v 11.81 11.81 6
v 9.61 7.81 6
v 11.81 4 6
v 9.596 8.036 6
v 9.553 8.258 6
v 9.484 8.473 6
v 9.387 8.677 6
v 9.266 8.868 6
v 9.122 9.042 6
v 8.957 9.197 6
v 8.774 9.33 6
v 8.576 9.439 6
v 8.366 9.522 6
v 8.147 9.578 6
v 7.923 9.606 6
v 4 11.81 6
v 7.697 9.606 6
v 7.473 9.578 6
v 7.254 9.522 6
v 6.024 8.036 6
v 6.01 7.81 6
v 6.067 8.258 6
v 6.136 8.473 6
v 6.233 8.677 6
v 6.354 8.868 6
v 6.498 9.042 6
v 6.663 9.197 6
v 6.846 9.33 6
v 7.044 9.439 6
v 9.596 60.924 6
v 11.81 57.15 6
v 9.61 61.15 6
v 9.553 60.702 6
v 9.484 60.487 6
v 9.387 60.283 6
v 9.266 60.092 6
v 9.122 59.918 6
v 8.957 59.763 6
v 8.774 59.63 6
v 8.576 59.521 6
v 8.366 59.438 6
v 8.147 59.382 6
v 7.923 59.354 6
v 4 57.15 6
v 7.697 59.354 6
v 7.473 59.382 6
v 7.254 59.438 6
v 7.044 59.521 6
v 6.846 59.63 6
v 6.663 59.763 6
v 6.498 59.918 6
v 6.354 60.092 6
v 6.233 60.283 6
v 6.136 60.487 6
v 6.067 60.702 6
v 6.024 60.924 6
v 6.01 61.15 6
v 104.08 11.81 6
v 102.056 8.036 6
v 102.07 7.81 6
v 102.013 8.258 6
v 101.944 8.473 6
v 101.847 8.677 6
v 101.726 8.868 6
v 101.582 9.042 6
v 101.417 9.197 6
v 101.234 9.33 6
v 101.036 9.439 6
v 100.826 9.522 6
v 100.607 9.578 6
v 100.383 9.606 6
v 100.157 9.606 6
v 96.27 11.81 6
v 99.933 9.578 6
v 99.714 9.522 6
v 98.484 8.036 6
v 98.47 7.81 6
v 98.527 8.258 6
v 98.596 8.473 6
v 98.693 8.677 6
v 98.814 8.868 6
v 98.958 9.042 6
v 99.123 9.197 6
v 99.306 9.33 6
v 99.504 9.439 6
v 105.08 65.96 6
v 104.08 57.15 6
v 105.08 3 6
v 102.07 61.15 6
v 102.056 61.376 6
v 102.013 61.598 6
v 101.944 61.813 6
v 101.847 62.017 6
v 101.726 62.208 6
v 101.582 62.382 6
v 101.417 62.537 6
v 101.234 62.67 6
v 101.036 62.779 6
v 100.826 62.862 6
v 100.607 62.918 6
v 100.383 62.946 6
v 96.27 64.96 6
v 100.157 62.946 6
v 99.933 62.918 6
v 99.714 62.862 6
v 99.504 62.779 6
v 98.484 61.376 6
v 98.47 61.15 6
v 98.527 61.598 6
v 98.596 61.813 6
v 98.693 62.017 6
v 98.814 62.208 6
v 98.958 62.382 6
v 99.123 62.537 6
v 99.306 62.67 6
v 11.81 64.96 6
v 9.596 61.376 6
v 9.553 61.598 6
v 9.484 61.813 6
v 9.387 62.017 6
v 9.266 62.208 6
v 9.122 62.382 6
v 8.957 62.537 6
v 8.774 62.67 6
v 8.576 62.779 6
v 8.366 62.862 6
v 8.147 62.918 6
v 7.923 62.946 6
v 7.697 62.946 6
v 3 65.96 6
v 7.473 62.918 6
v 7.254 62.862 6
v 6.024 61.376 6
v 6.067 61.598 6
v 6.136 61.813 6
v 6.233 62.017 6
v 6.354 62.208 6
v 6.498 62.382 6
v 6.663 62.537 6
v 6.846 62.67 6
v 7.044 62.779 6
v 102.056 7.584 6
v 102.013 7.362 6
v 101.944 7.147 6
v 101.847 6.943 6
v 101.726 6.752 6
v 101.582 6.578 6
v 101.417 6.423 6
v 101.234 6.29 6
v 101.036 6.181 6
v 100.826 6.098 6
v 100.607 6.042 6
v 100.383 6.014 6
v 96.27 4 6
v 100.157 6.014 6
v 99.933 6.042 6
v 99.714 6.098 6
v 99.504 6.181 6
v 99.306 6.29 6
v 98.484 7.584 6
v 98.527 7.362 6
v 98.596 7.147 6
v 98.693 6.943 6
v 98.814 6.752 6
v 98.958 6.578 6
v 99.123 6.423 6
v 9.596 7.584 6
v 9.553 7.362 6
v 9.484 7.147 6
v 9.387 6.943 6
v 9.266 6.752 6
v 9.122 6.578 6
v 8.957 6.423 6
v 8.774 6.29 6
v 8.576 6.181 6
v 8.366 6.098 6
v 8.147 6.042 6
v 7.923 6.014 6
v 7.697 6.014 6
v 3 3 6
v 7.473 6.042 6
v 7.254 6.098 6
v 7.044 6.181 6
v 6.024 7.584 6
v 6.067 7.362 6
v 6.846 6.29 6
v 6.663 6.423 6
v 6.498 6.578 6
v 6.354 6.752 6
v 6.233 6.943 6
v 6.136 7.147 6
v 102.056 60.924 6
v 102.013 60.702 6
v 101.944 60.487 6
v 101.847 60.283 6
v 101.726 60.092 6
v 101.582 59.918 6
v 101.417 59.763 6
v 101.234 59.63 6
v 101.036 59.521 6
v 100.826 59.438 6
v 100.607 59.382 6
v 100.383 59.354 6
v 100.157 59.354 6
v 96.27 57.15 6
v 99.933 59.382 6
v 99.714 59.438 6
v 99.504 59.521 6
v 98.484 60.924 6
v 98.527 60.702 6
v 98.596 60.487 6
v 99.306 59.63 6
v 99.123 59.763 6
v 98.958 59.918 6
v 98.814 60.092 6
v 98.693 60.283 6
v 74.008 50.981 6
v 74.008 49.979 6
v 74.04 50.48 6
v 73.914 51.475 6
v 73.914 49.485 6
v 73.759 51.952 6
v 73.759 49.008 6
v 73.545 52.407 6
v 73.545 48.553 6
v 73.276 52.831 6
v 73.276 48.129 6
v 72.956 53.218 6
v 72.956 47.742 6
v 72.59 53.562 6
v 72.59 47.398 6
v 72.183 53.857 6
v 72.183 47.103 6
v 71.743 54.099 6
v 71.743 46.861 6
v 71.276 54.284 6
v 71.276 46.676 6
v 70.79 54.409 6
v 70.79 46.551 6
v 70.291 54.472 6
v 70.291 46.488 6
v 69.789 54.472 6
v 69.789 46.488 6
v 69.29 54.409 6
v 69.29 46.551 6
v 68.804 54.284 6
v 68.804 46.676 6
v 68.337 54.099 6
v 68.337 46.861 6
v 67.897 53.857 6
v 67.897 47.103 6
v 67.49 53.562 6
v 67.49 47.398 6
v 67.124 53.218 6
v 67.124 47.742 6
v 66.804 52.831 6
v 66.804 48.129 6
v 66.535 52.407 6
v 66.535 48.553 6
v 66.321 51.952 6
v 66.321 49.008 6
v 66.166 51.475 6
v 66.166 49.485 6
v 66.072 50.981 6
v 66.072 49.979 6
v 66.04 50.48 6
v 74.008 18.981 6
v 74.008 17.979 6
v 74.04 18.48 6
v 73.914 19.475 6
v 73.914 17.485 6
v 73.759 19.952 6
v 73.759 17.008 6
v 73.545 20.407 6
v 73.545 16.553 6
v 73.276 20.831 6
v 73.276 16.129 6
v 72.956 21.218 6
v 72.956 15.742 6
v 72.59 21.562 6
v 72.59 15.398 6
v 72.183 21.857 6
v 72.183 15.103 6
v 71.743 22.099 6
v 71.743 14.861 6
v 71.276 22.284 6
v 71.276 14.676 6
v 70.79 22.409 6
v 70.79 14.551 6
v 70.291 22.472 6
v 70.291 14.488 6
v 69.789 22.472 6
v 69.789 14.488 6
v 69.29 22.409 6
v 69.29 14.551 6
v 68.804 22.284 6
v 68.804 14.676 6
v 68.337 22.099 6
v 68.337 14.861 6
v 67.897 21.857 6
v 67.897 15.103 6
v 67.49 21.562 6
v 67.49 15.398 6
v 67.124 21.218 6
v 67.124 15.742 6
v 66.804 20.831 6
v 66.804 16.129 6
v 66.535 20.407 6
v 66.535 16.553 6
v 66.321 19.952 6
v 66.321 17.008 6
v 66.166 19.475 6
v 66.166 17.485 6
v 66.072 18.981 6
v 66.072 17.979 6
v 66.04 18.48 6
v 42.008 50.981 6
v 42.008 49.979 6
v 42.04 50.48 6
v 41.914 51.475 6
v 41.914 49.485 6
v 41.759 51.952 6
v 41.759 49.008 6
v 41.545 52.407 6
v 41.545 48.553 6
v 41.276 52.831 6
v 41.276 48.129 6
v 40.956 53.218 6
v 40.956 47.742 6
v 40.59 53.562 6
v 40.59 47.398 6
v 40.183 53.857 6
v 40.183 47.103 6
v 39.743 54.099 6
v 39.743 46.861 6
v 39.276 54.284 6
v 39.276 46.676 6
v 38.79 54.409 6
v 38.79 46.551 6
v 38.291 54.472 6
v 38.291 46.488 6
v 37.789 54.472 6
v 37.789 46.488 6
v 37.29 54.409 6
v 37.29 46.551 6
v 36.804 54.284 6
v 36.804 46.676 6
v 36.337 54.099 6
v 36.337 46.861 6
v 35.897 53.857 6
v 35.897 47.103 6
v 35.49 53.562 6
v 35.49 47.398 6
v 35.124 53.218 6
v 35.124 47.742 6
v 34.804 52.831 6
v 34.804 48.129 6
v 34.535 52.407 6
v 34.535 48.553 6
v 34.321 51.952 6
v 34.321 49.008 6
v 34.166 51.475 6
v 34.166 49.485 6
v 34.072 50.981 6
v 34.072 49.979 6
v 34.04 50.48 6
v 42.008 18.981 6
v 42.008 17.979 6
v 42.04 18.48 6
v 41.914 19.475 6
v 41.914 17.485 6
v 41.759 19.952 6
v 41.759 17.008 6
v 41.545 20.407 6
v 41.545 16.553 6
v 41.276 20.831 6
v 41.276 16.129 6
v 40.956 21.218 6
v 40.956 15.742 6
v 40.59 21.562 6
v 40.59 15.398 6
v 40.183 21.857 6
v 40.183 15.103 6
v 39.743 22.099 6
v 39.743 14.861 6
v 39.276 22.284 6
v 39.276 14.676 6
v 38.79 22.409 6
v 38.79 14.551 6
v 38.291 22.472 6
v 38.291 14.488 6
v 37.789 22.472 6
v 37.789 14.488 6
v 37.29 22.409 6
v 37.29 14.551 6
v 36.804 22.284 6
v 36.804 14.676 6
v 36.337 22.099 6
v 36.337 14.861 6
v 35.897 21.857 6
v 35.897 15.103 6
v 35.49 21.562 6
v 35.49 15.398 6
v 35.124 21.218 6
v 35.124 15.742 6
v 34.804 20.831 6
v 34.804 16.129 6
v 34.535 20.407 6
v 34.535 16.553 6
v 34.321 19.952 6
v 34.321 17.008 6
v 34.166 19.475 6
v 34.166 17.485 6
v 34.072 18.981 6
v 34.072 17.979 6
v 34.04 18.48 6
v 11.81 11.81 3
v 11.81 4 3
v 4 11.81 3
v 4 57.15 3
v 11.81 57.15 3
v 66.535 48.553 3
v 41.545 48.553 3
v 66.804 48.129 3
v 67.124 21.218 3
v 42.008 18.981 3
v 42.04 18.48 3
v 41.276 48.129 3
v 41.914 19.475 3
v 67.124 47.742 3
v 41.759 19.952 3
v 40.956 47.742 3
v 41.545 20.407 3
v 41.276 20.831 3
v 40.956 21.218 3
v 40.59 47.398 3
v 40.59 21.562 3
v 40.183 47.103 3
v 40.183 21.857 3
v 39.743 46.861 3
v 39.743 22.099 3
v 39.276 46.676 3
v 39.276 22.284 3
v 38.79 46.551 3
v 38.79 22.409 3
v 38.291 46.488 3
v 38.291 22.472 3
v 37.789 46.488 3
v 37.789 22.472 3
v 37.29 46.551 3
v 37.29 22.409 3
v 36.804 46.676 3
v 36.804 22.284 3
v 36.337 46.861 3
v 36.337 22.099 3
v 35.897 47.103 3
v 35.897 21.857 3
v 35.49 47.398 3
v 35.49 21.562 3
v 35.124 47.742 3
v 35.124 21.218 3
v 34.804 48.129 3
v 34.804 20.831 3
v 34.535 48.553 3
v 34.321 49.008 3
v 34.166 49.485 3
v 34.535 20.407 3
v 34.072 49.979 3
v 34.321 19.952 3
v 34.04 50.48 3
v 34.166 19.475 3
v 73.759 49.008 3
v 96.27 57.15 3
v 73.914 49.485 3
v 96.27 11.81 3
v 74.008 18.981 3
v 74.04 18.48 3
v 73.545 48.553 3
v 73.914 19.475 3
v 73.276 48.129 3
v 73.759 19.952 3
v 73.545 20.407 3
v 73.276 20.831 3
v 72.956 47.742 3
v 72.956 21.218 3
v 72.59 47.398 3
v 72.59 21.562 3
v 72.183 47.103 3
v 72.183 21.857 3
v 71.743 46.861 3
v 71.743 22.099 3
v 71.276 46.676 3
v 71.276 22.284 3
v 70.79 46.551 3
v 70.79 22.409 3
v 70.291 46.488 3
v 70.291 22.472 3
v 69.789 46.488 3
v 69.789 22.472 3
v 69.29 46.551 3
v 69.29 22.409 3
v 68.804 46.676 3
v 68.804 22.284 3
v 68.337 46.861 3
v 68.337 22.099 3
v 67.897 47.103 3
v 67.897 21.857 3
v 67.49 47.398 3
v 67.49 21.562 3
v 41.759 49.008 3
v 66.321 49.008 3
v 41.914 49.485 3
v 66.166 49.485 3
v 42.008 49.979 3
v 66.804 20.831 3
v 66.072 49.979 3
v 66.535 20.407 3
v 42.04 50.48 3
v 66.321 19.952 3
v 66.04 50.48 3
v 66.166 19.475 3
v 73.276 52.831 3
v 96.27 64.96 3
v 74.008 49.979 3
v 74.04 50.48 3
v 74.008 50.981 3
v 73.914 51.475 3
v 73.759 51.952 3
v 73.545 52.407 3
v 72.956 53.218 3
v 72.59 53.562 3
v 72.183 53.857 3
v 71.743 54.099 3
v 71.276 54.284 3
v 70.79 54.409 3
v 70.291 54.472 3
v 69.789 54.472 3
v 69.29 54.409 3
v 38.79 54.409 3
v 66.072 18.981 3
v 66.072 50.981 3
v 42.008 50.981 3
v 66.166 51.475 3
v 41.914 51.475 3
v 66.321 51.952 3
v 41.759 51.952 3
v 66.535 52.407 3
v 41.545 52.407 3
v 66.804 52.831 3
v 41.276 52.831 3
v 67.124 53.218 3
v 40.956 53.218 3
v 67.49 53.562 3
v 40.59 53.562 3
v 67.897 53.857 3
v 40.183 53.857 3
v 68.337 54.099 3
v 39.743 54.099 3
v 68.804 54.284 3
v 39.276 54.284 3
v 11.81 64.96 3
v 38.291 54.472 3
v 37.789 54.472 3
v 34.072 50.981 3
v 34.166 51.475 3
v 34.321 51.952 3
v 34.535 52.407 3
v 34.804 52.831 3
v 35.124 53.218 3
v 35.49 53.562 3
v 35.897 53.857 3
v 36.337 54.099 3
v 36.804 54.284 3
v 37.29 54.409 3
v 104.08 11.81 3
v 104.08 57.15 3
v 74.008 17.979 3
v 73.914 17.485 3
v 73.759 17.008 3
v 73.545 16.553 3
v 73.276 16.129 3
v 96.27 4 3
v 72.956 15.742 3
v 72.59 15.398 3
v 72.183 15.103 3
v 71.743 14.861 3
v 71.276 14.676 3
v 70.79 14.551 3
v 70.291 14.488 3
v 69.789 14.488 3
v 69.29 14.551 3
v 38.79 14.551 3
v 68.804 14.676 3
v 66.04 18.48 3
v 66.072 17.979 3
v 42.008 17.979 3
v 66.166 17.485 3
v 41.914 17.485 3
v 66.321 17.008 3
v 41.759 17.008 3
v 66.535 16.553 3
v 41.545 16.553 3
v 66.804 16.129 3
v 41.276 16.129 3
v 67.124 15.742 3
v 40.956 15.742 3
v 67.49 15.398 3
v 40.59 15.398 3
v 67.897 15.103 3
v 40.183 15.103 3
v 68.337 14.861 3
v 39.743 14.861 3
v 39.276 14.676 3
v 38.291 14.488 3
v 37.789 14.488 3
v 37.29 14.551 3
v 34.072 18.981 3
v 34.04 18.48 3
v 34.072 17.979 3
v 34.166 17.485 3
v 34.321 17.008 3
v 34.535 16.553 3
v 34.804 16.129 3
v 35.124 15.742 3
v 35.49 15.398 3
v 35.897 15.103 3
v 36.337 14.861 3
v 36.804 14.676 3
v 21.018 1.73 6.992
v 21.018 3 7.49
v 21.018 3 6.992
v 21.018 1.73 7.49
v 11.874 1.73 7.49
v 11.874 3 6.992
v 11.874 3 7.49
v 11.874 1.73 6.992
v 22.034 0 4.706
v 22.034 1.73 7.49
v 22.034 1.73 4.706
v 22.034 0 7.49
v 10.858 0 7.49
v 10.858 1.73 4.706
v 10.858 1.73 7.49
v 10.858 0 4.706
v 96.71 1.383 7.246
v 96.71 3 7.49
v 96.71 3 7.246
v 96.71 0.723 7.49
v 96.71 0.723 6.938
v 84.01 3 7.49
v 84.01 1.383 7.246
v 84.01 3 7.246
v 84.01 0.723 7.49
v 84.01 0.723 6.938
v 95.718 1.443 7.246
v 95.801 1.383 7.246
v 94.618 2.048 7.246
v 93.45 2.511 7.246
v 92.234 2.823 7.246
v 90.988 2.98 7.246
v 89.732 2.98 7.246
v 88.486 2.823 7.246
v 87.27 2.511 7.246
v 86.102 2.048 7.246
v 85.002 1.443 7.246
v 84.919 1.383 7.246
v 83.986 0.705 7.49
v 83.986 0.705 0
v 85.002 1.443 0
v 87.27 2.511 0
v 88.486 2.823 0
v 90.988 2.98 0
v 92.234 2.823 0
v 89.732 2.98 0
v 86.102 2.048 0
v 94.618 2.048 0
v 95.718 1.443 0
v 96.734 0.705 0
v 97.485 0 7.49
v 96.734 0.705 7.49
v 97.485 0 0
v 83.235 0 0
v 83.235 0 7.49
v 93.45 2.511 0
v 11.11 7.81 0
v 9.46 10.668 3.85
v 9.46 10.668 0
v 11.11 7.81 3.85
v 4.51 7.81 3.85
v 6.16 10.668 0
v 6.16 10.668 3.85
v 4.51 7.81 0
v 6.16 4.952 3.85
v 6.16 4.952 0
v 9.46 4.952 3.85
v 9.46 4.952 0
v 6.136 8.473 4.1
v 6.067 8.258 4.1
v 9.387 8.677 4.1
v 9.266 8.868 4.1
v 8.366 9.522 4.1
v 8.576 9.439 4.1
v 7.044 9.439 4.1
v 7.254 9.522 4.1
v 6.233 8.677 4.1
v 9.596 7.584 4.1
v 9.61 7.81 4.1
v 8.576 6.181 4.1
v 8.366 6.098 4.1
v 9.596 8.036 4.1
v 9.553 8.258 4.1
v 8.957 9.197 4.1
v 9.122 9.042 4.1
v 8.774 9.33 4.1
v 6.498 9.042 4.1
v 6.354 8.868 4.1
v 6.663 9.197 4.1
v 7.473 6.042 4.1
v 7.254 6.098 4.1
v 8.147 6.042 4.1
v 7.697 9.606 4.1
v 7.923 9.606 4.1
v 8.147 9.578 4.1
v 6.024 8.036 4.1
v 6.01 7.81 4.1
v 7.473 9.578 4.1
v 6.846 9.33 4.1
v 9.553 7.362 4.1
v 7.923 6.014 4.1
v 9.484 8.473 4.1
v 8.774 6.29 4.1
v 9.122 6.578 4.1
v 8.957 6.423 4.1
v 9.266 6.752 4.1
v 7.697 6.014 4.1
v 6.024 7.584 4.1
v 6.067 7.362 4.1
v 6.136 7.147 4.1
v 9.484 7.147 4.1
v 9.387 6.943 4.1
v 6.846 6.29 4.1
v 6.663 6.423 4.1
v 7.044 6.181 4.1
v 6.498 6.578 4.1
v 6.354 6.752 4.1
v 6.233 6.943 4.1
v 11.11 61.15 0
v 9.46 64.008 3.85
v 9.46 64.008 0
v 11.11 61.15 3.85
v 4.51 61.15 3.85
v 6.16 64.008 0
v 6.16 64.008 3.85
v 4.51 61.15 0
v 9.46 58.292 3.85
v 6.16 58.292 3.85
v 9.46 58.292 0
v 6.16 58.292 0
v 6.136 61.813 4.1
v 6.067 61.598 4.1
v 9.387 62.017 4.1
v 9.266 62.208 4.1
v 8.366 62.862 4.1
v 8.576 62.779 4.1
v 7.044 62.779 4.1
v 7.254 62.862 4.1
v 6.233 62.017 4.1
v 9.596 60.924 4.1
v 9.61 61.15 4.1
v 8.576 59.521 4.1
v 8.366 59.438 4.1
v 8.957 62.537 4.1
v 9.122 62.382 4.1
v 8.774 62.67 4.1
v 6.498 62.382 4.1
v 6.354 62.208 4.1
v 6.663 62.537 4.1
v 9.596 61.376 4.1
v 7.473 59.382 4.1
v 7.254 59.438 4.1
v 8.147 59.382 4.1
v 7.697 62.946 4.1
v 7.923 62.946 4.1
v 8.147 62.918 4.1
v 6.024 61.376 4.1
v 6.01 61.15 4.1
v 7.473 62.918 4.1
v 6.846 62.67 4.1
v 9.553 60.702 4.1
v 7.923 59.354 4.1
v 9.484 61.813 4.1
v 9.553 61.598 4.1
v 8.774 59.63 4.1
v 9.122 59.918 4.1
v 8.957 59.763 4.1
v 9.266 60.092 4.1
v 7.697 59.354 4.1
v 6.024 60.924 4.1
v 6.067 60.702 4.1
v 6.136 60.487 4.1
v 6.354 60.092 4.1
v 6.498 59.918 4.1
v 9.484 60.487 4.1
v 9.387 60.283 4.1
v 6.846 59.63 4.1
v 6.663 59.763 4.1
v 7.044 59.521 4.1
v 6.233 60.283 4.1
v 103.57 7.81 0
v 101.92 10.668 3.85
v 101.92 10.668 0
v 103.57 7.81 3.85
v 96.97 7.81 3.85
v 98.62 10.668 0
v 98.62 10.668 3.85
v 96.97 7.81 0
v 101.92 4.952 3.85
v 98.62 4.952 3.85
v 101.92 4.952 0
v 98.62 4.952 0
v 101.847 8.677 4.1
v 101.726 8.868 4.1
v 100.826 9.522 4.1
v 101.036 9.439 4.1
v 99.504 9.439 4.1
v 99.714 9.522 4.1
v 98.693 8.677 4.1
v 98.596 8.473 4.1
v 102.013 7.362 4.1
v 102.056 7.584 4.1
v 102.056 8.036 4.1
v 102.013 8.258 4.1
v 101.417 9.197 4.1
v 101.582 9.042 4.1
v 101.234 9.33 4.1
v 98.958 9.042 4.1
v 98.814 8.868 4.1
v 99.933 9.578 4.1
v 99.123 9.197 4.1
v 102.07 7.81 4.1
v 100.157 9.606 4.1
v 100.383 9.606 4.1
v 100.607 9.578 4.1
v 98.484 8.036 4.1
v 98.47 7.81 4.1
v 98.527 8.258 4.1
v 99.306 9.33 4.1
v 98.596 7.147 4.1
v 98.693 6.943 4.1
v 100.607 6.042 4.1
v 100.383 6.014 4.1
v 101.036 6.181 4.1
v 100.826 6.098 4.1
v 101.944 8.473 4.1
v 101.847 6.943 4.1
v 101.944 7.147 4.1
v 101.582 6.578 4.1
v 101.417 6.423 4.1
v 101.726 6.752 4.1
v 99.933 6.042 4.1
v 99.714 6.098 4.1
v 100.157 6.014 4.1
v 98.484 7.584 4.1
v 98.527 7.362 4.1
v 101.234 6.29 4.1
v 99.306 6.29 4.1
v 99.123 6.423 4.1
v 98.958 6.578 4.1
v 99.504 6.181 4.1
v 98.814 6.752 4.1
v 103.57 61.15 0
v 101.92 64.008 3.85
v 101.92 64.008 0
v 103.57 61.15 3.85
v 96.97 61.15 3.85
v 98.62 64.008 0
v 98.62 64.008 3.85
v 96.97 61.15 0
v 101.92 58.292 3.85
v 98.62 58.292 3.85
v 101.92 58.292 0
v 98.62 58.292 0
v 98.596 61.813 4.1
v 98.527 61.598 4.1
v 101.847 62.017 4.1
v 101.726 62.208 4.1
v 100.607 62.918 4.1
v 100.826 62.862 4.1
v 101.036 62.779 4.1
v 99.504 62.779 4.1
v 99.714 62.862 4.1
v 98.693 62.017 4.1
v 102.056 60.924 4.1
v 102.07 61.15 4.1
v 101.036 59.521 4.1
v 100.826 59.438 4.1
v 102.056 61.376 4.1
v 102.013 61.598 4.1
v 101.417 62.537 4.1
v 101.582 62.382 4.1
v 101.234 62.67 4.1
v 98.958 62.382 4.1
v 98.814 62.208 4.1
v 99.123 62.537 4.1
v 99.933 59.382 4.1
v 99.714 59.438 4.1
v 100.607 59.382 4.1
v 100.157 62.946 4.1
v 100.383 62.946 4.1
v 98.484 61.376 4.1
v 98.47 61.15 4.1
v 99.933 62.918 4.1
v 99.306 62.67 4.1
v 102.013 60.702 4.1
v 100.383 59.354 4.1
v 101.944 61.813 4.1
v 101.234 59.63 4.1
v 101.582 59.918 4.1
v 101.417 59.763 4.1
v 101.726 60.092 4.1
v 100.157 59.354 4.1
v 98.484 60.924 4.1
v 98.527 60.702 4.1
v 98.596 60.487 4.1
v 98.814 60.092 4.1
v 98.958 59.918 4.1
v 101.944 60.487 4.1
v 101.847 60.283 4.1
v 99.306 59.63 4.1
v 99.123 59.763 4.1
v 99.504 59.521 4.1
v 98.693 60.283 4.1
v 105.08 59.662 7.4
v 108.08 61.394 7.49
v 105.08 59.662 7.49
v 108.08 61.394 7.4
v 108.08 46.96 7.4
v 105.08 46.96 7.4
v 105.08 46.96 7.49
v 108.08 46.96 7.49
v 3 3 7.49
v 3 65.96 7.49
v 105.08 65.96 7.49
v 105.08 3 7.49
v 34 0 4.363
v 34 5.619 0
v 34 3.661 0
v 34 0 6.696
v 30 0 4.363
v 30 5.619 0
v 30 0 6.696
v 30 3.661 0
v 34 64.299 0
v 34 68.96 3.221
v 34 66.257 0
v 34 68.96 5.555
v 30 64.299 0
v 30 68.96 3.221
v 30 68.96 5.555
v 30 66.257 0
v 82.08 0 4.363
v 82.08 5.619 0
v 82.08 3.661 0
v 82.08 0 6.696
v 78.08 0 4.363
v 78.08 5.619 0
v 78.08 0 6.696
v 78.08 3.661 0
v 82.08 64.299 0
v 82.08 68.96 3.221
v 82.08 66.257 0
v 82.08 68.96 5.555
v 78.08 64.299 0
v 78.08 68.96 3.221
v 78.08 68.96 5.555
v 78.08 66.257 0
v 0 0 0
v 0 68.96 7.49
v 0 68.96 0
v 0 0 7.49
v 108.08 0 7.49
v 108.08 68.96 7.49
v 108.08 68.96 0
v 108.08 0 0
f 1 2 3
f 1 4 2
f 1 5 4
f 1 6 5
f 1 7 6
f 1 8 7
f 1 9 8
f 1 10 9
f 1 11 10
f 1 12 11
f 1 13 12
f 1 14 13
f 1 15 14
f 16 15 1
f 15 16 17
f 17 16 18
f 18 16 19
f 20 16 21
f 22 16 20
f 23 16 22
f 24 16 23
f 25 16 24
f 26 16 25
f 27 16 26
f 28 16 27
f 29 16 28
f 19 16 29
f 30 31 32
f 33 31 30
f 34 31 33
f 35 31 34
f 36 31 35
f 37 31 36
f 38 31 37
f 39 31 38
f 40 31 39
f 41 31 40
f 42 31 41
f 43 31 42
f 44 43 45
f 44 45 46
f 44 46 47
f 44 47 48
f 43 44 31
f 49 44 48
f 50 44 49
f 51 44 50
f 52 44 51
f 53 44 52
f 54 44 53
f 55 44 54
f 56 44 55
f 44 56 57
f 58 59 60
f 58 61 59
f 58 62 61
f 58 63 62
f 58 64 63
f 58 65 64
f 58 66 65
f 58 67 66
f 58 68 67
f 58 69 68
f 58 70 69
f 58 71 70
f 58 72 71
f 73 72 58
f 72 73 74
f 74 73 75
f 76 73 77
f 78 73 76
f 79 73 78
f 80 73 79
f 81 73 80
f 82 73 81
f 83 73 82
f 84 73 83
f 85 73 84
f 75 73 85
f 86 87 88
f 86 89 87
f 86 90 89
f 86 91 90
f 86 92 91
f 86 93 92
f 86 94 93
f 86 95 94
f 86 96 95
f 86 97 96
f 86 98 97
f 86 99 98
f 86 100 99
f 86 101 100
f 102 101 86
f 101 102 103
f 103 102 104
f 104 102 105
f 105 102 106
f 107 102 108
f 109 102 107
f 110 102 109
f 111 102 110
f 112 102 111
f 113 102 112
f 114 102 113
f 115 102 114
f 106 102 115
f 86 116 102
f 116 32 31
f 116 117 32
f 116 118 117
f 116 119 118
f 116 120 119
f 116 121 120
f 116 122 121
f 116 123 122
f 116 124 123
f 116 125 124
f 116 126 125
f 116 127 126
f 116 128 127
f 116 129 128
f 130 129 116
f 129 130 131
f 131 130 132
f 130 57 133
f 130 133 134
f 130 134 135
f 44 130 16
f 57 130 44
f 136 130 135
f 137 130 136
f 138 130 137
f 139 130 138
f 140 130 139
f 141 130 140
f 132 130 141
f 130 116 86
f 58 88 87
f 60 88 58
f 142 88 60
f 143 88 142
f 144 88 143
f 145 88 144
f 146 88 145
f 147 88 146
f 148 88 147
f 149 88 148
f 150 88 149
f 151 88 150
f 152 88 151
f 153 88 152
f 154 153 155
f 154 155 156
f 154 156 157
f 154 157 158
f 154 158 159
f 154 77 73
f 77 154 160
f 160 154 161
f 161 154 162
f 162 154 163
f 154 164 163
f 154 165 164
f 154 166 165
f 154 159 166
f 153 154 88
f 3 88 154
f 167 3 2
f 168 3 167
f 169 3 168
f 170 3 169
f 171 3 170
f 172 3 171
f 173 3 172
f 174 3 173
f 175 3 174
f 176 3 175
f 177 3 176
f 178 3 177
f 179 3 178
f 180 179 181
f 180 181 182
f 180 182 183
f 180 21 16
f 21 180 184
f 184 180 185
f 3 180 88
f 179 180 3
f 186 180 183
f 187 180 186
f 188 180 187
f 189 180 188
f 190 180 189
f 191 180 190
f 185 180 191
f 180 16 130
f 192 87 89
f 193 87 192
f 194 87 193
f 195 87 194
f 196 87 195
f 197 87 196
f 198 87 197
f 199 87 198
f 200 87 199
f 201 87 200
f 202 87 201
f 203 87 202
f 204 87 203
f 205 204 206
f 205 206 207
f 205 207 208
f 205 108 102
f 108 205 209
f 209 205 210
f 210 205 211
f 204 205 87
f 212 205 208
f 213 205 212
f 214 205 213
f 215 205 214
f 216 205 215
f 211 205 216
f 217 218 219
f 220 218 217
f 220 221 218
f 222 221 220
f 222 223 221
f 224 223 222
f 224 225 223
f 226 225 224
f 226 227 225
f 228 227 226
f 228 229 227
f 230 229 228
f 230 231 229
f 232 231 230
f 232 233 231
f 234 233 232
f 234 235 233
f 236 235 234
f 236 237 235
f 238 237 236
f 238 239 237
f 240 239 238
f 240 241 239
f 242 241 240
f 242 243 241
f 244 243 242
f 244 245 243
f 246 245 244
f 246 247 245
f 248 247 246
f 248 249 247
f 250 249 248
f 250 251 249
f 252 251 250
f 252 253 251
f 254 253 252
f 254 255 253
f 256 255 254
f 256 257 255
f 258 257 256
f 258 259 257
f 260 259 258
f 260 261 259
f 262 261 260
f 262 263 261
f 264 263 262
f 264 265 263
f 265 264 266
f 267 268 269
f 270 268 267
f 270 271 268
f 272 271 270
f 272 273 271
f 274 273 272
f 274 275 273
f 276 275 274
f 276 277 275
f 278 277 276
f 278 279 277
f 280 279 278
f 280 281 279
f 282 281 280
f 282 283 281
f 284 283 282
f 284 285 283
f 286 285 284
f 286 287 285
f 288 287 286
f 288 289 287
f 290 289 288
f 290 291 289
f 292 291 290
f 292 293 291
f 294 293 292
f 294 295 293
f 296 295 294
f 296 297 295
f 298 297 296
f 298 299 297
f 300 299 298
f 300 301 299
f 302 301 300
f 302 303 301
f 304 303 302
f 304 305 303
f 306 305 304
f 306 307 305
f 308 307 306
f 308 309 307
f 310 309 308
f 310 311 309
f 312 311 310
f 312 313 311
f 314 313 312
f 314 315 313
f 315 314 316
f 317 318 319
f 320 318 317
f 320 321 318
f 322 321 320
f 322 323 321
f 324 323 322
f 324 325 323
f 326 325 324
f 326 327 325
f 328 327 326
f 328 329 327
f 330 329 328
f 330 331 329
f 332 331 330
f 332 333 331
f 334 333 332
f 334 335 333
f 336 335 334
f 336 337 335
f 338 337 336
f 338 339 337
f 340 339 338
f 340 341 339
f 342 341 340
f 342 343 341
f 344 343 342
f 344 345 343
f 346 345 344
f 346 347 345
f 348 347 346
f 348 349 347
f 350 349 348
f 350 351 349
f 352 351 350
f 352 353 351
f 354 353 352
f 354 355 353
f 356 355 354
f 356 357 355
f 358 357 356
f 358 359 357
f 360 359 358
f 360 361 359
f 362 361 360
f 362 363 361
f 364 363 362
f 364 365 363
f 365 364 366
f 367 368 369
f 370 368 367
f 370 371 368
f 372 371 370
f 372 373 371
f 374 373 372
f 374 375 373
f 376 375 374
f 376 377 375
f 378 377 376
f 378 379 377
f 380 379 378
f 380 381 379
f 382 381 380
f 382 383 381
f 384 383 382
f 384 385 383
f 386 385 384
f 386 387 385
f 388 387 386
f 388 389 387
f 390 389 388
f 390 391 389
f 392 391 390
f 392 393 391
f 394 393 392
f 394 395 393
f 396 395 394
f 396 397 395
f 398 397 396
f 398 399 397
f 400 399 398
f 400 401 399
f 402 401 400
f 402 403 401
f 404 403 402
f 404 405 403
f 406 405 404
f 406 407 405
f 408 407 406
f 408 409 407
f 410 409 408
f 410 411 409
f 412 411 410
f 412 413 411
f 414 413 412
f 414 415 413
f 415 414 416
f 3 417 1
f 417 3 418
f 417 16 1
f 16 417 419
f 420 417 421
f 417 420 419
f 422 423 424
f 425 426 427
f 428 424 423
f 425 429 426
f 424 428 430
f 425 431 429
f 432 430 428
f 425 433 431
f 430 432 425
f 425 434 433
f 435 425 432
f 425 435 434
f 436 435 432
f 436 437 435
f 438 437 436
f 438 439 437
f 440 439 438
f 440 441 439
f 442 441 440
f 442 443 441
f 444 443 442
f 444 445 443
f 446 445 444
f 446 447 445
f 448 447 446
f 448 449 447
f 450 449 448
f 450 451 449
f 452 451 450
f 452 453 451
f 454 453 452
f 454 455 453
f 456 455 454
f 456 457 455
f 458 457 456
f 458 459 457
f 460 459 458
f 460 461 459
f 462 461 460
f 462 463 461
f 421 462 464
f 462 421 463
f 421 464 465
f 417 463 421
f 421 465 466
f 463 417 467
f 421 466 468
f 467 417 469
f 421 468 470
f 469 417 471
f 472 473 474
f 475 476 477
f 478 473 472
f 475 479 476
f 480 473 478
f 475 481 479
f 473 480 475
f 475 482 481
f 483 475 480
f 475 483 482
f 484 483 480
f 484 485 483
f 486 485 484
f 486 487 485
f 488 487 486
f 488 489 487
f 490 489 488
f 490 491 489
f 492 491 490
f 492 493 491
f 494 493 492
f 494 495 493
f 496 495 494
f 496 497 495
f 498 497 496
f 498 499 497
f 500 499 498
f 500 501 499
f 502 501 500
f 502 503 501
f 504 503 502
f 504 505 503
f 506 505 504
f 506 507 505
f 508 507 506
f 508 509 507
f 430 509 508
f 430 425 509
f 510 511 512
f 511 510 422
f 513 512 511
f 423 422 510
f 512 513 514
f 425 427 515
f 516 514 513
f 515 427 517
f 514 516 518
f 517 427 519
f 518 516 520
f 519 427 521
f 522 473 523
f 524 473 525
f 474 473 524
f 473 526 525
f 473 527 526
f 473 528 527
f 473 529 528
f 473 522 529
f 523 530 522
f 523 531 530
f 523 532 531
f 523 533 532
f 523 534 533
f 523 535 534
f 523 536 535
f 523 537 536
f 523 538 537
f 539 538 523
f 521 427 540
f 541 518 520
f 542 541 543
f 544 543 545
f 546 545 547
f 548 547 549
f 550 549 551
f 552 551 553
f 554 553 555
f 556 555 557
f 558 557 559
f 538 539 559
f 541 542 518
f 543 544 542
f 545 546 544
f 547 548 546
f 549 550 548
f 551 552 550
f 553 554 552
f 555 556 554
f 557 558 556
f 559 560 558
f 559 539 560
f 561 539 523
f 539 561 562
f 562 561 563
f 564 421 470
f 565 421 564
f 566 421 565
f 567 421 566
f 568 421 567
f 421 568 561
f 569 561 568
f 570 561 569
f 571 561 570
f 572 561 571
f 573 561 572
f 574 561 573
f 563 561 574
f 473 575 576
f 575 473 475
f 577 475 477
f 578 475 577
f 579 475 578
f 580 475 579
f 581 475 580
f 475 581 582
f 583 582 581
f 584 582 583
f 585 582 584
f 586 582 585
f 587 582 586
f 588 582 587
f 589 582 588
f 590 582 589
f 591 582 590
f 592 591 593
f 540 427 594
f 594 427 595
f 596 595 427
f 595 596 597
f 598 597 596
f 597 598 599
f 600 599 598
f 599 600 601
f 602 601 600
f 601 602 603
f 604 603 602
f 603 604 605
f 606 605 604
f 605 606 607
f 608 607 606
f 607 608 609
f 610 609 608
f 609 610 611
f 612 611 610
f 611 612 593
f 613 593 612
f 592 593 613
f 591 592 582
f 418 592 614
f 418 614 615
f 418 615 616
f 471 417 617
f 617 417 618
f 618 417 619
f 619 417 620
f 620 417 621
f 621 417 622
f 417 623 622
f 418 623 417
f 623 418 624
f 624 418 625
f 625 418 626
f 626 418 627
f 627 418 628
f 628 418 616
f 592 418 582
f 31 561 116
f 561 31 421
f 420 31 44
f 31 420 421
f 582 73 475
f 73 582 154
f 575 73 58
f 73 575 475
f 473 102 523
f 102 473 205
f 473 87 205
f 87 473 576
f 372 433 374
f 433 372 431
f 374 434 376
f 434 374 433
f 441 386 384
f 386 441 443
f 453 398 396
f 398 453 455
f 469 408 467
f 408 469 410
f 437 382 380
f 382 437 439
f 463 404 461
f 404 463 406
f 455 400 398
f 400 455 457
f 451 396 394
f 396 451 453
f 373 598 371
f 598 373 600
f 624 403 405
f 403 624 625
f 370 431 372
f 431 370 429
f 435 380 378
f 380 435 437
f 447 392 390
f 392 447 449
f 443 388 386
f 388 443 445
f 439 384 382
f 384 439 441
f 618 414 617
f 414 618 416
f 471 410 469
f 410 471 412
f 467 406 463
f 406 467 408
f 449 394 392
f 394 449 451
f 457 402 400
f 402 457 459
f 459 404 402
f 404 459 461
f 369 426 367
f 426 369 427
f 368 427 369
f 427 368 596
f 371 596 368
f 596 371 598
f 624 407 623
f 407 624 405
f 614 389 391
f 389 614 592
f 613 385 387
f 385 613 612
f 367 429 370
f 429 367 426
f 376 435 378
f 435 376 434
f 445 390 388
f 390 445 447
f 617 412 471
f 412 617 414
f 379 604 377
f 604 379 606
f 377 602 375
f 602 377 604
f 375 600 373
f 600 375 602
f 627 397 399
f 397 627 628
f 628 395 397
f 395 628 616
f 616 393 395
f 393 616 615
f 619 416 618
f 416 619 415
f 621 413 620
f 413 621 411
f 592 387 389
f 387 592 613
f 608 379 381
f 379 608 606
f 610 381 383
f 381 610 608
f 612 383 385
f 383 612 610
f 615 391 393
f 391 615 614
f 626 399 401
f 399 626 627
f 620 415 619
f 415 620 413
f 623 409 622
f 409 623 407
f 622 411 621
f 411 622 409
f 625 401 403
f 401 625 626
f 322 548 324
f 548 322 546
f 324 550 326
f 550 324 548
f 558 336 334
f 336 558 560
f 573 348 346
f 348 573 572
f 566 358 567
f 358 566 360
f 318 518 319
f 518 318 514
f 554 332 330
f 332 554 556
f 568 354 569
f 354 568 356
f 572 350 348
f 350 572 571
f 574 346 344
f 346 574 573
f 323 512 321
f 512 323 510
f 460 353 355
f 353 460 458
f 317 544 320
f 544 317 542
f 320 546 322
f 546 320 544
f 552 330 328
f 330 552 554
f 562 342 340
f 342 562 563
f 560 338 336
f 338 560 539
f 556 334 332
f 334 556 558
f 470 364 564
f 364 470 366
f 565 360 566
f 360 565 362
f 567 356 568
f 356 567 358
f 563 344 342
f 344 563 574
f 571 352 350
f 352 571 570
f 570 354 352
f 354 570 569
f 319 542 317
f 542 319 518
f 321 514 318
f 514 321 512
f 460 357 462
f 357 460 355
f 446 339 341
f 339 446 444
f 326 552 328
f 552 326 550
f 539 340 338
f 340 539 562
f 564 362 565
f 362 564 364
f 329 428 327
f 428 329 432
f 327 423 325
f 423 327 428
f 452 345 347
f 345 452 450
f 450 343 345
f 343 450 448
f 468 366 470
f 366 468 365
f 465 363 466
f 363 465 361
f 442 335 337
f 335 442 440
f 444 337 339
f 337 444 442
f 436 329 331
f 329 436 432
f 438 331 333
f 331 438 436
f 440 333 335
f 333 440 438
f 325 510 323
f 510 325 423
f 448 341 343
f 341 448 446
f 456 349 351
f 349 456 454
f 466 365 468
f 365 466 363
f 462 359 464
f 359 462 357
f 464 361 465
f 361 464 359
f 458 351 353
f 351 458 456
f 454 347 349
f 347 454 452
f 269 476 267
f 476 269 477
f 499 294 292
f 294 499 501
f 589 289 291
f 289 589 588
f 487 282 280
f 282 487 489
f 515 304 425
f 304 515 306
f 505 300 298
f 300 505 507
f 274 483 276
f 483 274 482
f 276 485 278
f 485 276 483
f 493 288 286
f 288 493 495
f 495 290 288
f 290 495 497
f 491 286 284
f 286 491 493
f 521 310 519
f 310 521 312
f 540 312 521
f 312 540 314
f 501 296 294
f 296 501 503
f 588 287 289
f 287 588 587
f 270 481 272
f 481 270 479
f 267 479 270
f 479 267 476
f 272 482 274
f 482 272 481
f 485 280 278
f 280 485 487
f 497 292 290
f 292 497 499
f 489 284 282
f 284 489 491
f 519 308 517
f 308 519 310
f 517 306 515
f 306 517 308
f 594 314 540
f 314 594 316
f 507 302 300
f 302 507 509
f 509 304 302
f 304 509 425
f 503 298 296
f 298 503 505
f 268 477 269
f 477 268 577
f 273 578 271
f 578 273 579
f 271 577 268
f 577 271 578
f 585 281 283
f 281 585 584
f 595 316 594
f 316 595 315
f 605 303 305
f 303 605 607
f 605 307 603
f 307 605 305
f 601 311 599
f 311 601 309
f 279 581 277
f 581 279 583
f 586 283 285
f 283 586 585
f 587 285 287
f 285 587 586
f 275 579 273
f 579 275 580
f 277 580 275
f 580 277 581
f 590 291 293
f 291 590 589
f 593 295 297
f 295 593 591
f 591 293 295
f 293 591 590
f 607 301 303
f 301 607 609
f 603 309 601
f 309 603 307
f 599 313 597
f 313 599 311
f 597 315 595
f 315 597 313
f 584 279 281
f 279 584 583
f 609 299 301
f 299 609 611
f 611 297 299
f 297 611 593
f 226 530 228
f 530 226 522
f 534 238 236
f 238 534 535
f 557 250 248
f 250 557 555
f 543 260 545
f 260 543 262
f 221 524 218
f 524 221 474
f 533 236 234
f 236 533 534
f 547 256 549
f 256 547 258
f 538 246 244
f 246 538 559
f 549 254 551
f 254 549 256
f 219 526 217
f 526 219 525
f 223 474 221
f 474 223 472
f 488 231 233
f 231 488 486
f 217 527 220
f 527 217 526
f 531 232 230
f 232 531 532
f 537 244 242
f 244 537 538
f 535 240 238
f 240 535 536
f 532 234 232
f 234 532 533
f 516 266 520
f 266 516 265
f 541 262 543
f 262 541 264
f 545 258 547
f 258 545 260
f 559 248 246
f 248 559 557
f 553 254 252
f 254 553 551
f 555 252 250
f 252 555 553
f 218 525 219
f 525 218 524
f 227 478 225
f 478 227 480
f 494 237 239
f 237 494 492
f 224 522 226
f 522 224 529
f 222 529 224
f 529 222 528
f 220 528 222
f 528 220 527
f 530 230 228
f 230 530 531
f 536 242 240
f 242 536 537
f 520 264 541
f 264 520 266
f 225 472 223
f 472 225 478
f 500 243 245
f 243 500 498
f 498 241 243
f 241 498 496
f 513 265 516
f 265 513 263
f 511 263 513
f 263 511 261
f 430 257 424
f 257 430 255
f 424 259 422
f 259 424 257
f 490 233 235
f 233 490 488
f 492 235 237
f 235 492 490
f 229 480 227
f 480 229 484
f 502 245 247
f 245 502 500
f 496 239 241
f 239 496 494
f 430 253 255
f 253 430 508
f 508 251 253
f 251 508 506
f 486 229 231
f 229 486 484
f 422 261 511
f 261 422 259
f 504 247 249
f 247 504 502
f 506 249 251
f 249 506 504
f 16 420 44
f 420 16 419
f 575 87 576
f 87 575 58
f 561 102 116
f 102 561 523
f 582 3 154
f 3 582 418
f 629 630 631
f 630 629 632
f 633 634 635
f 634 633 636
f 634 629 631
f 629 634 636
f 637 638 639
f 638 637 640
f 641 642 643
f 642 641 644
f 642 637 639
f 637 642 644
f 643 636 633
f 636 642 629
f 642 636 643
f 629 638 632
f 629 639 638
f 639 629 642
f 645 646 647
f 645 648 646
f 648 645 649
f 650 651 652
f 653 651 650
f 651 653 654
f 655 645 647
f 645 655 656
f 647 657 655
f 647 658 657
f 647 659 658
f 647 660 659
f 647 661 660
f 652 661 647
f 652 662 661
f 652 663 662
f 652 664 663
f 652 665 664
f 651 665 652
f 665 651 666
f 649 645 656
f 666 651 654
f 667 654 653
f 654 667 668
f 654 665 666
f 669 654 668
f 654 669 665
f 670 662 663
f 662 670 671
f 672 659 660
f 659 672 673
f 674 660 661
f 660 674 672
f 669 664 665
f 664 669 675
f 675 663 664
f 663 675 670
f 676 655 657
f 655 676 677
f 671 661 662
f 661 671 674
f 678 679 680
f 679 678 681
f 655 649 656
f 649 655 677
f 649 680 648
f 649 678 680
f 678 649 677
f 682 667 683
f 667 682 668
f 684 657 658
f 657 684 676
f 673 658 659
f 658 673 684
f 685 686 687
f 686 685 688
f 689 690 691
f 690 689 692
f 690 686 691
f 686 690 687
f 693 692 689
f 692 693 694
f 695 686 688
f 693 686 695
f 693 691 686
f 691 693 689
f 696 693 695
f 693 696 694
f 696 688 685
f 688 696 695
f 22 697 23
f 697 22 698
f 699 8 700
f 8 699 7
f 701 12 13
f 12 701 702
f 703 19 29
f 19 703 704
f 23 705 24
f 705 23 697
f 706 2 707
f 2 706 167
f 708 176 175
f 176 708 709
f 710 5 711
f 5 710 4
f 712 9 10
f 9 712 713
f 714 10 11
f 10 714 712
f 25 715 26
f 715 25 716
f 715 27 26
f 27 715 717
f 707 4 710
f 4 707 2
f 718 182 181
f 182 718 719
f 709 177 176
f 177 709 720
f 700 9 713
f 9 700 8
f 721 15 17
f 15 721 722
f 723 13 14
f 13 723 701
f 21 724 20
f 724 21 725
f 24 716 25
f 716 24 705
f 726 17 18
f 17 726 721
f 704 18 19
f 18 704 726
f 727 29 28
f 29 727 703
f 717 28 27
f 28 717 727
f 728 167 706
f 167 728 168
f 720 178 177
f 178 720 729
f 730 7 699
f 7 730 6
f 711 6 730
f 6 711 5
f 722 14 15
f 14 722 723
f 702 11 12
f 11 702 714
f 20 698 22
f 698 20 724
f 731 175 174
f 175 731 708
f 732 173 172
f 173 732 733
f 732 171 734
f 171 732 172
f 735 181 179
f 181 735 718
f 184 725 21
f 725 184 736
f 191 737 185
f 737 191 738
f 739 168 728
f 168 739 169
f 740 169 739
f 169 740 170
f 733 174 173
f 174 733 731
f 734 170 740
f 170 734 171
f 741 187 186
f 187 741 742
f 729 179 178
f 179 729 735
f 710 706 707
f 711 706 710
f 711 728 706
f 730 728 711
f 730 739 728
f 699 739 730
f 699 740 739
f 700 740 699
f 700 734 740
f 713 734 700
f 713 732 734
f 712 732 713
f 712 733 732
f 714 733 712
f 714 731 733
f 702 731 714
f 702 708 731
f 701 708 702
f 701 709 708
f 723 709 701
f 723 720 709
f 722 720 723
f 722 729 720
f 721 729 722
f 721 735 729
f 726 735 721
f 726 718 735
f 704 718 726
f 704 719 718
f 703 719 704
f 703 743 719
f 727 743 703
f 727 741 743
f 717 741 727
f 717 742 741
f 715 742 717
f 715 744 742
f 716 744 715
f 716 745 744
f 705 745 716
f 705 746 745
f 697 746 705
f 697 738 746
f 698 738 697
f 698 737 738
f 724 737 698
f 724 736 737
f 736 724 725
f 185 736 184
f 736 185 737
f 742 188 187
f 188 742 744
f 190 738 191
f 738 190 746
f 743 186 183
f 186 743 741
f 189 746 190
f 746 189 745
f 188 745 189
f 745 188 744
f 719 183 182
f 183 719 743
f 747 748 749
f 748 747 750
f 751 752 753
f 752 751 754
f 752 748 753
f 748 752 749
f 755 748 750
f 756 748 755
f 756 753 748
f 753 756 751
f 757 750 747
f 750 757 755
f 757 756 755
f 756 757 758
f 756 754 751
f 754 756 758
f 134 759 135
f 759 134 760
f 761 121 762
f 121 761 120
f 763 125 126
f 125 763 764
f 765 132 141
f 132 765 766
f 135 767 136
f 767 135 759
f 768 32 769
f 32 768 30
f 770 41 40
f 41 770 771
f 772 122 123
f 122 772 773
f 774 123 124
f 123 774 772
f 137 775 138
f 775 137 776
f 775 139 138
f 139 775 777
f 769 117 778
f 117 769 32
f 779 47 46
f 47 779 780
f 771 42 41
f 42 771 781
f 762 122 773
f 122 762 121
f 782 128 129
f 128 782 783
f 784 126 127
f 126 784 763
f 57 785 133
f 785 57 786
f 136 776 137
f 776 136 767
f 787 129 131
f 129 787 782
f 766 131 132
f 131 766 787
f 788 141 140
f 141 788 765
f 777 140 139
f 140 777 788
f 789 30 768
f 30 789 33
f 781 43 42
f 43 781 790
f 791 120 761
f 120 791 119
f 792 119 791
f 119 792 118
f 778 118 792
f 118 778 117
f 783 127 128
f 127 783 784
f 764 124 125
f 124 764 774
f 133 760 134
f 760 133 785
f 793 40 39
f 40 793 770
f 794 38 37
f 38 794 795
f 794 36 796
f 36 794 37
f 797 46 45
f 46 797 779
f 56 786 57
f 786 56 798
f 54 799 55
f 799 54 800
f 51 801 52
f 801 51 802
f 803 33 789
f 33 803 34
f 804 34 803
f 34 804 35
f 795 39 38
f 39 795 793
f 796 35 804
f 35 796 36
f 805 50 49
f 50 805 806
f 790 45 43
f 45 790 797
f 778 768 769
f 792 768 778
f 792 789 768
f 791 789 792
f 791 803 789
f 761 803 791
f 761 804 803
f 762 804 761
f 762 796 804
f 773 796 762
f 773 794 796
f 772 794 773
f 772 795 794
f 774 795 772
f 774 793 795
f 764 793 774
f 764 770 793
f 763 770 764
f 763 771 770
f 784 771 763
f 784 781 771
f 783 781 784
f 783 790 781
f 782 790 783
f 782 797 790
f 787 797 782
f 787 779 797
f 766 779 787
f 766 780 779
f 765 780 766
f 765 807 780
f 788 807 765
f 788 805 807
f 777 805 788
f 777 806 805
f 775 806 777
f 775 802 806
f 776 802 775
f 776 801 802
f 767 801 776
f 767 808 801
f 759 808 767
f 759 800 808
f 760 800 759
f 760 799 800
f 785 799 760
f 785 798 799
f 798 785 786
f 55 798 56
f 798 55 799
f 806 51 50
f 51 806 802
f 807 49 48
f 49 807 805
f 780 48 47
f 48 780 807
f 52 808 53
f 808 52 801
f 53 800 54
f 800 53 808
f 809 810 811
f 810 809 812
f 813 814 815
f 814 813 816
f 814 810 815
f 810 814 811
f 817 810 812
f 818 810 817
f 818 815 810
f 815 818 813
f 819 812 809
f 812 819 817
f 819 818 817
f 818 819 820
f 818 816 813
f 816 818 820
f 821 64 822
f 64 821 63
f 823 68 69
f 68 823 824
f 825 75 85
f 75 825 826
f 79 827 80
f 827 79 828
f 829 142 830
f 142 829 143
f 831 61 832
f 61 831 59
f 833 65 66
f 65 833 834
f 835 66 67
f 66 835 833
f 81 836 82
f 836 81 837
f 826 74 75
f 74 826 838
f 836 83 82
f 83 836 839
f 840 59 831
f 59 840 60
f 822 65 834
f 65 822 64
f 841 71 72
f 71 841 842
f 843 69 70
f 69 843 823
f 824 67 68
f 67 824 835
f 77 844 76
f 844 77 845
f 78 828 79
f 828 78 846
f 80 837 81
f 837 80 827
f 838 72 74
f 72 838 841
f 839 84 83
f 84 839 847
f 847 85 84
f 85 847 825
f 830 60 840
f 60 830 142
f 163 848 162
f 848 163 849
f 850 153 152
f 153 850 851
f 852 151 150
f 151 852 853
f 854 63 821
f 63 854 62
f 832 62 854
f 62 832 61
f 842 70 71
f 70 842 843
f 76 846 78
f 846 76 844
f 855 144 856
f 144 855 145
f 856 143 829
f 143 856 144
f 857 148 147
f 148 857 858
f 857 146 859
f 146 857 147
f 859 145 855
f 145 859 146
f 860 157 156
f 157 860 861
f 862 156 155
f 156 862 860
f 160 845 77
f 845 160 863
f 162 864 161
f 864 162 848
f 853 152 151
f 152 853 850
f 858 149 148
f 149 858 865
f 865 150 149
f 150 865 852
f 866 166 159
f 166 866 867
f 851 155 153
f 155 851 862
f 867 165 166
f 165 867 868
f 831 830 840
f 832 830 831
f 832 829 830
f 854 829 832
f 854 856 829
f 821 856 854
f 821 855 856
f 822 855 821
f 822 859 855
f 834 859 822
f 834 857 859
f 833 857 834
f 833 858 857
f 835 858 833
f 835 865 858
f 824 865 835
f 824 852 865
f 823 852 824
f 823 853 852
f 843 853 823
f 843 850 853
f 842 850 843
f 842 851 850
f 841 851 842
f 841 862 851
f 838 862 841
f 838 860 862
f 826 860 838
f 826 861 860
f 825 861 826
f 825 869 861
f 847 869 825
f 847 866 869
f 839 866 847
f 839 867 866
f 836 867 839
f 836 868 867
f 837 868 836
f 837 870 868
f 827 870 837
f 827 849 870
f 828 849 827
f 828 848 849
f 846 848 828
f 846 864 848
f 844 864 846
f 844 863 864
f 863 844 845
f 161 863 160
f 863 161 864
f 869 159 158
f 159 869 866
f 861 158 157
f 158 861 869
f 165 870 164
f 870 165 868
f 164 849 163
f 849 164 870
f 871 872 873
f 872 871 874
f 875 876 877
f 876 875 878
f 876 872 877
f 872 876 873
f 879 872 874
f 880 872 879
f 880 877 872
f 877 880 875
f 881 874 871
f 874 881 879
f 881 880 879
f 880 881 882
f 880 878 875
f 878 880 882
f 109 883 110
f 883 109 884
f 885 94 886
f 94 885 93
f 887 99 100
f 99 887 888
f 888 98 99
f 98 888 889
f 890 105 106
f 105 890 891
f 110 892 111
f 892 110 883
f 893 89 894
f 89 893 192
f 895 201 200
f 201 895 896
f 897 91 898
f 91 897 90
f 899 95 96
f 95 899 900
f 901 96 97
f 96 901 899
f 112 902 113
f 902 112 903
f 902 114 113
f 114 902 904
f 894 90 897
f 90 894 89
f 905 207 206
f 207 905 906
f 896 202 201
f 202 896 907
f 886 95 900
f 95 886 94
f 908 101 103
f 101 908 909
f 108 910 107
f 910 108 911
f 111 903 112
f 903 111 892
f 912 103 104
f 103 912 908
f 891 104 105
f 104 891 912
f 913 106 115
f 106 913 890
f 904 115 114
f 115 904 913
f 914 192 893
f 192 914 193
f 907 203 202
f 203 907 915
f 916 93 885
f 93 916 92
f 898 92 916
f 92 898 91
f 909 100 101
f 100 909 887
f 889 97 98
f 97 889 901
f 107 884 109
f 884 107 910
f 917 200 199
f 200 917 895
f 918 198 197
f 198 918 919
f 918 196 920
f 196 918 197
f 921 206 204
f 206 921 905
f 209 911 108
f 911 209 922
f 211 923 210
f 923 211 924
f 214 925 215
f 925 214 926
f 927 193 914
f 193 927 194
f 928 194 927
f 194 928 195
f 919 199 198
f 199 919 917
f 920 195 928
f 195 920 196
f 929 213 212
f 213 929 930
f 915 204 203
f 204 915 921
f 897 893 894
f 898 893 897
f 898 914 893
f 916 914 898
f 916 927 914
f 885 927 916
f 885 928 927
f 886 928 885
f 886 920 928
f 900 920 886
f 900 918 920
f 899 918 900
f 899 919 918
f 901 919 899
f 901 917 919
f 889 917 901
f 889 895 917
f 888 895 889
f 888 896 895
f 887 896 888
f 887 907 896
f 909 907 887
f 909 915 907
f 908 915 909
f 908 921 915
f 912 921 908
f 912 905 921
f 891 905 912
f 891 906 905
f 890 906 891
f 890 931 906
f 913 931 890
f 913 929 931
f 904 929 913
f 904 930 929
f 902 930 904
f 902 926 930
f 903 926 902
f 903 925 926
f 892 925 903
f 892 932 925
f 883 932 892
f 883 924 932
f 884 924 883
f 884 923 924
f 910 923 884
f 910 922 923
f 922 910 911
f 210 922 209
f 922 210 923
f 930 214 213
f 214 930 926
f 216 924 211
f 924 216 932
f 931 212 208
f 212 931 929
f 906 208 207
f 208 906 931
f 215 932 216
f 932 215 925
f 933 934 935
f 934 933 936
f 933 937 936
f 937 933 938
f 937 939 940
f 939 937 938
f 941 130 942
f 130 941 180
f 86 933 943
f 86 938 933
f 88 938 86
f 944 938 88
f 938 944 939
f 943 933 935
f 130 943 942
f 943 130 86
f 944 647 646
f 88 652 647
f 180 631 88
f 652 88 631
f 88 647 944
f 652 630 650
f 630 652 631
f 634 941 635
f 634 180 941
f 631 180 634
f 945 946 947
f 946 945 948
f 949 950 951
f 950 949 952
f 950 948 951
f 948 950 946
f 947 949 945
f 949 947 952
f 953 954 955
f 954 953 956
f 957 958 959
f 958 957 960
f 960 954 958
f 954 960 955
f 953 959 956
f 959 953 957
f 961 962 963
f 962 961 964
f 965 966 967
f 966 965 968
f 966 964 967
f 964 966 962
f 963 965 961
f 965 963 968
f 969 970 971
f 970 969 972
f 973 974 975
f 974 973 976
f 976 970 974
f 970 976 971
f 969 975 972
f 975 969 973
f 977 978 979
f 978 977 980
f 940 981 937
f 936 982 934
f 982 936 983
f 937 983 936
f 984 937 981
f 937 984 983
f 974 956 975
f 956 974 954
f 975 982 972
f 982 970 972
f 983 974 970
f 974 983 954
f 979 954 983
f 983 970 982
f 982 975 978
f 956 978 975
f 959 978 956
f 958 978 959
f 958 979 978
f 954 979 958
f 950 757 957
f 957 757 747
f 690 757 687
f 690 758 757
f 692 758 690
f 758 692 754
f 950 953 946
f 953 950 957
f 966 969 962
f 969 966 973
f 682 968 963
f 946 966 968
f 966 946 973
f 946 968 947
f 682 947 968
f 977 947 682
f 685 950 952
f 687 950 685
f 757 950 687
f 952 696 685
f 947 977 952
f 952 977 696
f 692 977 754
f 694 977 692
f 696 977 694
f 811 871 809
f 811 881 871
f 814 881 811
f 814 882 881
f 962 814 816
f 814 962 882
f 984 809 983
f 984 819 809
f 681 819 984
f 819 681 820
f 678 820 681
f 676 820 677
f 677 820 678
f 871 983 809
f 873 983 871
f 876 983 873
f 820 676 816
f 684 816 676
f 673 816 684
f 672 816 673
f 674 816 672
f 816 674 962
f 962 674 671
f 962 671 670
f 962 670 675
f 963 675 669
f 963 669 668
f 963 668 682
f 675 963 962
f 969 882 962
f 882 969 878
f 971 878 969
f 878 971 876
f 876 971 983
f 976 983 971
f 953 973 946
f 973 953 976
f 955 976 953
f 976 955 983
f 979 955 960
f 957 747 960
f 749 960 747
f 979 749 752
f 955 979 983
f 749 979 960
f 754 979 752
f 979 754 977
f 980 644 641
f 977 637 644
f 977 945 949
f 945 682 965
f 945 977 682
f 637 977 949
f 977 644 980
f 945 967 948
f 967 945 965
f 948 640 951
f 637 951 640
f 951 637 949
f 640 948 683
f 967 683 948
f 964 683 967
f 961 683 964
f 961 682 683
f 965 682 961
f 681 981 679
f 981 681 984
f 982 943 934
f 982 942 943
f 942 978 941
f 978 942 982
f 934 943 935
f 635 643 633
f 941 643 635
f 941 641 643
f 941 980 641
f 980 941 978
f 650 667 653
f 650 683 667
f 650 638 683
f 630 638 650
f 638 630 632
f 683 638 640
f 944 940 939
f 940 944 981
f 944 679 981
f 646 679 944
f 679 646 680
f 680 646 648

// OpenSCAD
include <../config.scad>
use <../inc/pboardcase.scad>

casebottom(showpcb=false);
